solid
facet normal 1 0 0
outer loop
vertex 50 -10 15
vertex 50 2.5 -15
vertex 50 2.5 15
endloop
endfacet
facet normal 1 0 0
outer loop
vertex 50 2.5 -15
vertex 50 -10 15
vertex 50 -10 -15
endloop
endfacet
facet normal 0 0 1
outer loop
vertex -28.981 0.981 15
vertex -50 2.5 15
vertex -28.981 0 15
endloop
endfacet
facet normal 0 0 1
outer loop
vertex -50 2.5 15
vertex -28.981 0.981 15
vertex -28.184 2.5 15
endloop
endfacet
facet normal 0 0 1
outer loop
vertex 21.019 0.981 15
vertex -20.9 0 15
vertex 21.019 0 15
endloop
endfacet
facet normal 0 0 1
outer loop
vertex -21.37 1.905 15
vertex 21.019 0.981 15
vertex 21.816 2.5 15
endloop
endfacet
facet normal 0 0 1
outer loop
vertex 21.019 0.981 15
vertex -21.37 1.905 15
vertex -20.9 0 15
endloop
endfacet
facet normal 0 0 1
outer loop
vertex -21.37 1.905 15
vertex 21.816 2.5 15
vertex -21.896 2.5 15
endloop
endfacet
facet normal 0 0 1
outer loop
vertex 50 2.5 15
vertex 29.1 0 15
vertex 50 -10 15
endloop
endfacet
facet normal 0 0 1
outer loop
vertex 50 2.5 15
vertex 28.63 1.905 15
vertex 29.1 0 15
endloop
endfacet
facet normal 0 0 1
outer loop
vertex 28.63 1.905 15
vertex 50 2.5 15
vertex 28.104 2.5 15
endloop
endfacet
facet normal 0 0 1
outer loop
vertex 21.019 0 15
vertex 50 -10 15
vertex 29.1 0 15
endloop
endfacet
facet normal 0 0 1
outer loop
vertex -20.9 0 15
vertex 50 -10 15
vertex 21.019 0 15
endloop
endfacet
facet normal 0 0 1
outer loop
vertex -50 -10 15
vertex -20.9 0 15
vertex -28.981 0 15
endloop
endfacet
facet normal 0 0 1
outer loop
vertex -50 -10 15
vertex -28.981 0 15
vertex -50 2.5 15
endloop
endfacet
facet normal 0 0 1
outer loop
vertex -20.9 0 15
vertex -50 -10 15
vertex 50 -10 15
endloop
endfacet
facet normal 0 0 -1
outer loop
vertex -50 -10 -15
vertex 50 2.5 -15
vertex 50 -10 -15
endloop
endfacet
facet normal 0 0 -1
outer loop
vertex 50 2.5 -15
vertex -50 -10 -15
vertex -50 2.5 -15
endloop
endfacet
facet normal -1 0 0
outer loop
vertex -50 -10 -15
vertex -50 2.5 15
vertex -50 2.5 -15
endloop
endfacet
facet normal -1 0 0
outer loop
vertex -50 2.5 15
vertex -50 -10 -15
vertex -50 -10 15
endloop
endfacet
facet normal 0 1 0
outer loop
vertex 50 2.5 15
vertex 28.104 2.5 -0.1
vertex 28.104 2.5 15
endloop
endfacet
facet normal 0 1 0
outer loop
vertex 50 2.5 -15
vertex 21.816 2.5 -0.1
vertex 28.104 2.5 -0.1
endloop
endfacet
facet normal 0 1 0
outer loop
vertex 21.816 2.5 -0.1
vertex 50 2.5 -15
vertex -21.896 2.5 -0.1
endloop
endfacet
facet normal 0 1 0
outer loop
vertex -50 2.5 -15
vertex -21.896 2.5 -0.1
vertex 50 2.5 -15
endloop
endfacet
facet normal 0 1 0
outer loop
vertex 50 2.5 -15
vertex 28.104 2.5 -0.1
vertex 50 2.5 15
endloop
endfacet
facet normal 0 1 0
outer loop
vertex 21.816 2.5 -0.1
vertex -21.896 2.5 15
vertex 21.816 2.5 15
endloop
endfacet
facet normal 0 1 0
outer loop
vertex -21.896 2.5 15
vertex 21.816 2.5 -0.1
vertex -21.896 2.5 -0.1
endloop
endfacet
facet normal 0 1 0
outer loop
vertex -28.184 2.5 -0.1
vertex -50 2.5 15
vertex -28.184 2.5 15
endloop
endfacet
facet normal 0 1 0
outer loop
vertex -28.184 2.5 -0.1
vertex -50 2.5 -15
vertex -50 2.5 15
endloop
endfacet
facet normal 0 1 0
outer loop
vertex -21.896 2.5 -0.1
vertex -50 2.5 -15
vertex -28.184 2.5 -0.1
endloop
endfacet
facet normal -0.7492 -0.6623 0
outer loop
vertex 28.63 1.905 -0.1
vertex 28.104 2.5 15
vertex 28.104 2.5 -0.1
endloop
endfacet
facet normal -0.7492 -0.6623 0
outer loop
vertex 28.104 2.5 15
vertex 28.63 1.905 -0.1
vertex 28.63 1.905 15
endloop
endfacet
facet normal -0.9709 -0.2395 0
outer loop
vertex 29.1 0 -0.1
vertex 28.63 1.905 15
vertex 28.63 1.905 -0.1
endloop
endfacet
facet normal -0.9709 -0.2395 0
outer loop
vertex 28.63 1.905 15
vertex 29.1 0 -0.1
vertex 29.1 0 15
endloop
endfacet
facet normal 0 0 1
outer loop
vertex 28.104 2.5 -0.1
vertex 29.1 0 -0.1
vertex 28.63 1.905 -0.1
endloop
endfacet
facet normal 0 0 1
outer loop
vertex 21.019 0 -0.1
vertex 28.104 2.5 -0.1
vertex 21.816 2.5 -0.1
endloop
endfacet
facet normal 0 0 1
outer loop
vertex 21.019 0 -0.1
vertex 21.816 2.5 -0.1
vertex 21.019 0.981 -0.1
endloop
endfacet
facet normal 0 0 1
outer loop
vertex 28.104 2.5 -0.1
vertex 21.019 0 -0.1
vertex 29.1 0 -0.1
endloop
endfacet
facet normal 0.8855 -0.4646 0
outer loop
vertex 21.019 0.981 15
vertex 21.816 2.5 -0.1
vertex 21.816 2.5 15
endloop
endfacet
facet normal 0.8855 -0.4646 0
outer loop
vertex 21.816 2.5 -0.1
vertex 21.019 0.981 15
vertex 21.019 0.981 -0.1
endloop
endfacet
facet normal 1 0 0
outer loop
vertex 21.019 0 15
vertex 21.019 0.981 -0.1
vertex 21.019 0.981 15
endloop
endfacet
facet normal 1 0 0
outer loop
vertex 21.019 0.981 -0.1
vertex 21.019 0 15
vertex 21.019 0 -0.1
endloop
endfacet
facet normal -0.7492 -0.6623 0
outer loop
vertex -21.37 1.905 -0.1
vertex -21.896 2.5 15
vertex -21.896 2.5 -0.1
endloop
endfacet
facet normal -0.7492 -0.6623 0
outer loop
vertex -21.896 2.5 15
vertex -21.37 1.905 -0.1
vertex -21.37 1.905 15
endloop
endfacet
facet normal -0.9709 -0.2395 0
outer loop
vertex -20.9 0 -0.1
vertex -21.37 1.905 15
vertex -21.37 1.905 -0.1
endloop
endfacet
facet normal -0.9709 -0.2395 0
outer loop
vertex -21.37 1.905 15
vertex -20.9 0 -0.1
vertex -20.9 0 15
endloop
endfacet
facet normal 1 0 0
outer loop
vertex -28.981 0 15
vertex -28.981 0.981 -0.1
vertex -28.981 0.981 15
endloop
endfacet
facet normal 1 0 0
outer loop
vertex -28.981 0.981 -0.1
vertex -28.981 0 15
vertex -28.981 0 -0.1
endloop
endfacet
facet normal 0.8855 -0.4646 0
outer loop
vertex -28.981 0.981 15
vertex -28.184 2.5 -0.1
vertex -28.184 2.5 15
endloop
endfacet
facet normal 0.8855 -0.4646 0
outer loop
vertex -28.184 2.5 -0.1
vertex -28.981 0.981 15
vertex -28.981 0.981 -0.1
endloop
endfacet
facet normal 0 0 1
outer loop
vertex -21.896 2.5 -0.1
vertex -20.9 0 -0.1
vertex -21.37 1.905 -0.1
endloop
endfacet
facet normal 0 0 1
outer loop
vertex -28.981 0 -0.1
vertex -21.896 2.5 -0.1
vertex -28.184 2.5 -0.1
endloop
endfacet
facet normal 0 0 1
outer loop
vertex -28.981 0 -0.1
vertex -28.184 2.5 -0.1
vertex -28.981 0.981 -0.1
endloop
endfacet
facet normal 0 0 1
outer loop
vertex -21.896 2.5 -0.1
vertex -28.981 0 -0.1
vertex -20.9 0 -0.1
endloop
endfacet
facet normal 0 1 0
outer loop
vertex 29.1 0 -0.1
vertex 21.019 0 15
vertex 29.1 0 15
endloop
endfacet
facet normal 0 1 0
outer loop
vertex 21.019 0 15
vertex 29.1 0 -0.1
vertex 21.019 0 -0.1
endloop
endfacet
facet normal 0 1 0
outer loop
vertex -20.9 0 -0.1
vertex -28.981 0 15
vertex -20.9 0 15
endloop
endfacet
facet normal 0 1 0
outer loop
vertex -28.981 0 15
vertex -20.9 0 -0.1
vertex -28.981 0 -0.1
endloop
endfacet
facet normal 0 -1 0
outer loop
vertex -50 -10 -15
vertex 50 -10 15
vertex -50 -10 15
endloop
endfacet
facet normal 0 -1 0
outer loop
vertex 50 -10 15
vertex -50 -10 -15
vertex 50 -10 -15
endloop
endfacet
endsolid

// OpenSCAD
// Dimensions
shelf_width = 100;       // Width of the shelf
shelf_thickness = 10;    // Thickness of the shelf
bracket_height = 30;     // Height of the bracket
bracket_thickness = 5;   // Thickness of the bracket
hole_diameter = 8;       // Diameter of the mounting holes
hole_distance = 50;      // Distance between the centers of the mounting holes
tolerance = 0.2;         // Tolerance for 3D printing

// Bracket
difference() {
    // Main bracket shape
    cube([shelf_width, bracket_thickness, bracket_height], center=true);
    
    // Cut out mounting holes
    translate([hole_distance/2, 0, bracket_height/2])
        cylinder(h=bracket_height + tolerance, d=hole_diameter + tolerance, center=true);
    translate([-hole_distance/2, 0, bracket_height/2])
        cylinder(h=bracket_height + tolerance, d=hole_diameter + tolerance, center=true);
}

// Translate to center the model at origin
translate([0, -shelf_thickness/2, 0])
    cube([shelf_width, shelf_thickness, bracket_height], center=true);
